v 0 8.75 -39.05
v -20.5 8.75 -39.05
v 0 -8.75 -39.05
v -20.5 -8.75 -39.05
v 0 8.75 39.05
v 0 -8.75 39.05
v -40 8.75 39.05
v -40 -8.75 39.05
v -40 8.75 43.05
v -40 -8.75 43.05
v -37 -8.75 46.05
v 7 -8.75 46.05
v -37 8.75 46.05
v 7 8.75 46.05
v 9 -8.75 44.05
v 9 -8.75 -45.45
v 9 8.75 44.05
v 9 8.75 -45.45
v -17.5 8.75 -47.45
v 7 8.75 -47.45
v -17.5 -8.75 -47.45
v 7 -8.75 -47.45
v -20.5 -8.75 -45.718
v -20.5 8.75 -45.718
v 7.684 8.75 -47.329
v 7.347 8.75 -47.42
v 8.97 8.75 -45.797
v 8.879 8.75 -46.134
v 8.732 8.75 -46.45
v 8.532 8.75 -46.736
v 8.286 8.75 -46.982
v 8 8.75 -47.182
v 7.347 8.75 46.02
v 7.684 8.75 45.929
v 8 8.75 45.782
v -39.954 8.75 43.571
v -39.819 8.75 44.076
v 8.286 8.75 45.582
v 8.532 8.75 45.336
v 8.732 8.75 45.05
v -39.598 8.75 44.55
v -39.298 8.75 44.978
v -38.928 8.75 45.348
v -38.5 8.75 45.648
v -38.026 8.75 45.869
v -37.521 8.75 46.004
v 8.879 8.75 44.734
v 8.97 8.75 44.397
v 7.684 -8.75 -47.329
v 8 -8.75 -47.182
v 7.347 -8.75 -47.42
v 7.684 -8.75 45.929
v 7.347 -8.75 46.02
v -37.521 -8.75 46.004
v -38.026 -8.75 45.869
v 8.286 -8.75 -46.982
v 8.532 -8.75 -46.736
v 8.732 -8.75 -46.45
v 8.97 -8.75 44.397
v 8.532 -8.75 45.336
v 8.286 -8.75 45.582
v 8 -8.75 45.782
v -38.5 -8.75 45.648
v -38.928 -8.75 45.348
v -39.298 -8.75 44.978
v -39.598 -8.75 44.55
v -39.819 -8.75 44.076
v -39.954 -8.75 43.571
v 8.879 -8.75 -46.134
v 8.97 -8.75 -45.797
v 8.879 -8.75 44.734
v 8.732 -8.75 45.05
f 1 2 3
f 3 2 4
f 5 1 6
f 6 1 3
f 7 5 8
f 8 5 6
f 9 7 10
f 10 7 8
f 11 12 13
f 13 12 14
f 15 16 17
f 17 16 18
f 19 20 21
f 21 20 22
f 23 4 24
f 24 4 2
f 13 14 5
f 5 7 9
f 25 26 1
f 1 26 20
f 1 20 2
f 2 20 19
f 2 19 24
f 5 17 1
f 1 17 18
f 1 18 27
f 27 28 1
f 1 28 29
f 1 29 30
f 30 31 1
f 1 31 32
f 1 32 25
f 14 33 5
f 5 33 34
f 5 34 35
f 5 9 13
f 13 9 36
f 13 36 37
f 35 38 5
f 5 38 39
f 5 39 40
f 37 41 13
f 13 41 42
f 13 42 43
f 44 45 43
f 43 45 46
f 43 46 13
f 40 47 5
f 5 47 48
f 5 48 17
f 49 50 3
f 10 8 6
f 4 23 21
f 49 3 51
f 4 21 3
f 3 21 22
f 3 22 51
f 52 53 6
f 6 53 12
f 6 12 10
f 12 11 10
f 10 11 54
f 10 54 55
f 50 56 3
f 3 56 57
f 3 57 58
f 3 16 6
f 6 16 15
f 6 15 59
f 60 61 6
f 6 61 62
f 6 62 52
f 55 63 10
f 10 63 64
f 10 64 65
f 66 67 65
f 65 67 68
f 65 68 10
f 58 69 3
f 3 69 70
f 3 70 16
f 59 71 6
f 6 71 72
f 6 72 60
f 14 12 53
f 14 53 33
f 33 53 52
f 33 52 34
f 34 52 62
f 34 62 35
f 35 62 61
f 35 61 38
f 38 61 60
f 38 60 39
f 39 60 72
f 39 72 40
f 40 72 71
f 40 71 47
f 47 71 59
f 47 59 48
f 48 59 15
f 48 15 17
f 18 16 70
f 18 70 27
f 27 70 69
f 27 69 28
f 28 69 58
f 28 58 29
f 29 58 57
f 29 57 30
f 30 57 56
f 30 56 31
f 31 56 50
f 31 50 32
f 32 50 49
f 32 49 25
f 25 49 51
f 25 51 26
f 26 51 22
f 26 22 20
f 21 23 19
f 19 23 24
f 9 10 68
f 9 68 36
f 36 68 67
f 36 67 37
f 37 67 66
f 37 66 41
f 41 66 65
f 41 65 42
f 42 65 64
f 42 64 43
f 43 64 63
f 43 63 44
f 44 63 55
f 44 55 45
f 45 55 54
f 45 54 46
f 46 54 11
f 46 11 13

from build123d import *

# Parameters (mm, degrees)
BOSS_EXTRUDE1_DEPTH = 8.75
FILLET1_R           = 2
CHAMFER1_SIZE       = 3
CHAMFER1_SIZE2      = 1.732050808
FILLET2_R           = 3


with BuildPart() as part:
    # Sketch1 → Boss-Extrude1 (new, symmetric)
    with BuildSketch(Plane(origin=(0, 0, 0), x_dir=(1, 0, 0), z_dir=(0, 1, 0))):
        Polygon((0, 39.05), (0, -39.05), (-40, -39.05), (-40, -46.05), (9, -46.05), (9, 47.45), (-20.5, 47.45), (-20.5, 39.05), align=None)
    extrude(amount=BOSS_EXTRUDE1_DEPTH, both=True)

    # Fillet1
    fillet1_edges = [part.edges().sort_by_distance(p)[0] for p in [
        (9, 0, -47.45),
        (9, 0, 46.05),
    ]]
    fillet(fillet1_edges, radius=FILLET1_R)

    # Chamfer1
    chamfer1_edges = [part.edges().sort_by_distance(p)[0] for p in [
        (-20.5, 0, -47.45),
    ]]
    chamfer1_side = [part.faces().sort_by_distance(p)[0] for p in [
        (-6.75, 0, -47.45),
    ]]
    chamfer(chamfer1_edges, length=CHAMFER1_SIZE, length2=CHAMFER1_SIZE2, reference=chamfer1_side[0])

    # Fillet2
    fillet2_edges = [part.edges().sort_by_distance(p)[0] for p in [
        (-40, 0, 46.05),
    ]]
    fillet(fillet2_edges, radius=FILLET2_R)


solid = part.part
